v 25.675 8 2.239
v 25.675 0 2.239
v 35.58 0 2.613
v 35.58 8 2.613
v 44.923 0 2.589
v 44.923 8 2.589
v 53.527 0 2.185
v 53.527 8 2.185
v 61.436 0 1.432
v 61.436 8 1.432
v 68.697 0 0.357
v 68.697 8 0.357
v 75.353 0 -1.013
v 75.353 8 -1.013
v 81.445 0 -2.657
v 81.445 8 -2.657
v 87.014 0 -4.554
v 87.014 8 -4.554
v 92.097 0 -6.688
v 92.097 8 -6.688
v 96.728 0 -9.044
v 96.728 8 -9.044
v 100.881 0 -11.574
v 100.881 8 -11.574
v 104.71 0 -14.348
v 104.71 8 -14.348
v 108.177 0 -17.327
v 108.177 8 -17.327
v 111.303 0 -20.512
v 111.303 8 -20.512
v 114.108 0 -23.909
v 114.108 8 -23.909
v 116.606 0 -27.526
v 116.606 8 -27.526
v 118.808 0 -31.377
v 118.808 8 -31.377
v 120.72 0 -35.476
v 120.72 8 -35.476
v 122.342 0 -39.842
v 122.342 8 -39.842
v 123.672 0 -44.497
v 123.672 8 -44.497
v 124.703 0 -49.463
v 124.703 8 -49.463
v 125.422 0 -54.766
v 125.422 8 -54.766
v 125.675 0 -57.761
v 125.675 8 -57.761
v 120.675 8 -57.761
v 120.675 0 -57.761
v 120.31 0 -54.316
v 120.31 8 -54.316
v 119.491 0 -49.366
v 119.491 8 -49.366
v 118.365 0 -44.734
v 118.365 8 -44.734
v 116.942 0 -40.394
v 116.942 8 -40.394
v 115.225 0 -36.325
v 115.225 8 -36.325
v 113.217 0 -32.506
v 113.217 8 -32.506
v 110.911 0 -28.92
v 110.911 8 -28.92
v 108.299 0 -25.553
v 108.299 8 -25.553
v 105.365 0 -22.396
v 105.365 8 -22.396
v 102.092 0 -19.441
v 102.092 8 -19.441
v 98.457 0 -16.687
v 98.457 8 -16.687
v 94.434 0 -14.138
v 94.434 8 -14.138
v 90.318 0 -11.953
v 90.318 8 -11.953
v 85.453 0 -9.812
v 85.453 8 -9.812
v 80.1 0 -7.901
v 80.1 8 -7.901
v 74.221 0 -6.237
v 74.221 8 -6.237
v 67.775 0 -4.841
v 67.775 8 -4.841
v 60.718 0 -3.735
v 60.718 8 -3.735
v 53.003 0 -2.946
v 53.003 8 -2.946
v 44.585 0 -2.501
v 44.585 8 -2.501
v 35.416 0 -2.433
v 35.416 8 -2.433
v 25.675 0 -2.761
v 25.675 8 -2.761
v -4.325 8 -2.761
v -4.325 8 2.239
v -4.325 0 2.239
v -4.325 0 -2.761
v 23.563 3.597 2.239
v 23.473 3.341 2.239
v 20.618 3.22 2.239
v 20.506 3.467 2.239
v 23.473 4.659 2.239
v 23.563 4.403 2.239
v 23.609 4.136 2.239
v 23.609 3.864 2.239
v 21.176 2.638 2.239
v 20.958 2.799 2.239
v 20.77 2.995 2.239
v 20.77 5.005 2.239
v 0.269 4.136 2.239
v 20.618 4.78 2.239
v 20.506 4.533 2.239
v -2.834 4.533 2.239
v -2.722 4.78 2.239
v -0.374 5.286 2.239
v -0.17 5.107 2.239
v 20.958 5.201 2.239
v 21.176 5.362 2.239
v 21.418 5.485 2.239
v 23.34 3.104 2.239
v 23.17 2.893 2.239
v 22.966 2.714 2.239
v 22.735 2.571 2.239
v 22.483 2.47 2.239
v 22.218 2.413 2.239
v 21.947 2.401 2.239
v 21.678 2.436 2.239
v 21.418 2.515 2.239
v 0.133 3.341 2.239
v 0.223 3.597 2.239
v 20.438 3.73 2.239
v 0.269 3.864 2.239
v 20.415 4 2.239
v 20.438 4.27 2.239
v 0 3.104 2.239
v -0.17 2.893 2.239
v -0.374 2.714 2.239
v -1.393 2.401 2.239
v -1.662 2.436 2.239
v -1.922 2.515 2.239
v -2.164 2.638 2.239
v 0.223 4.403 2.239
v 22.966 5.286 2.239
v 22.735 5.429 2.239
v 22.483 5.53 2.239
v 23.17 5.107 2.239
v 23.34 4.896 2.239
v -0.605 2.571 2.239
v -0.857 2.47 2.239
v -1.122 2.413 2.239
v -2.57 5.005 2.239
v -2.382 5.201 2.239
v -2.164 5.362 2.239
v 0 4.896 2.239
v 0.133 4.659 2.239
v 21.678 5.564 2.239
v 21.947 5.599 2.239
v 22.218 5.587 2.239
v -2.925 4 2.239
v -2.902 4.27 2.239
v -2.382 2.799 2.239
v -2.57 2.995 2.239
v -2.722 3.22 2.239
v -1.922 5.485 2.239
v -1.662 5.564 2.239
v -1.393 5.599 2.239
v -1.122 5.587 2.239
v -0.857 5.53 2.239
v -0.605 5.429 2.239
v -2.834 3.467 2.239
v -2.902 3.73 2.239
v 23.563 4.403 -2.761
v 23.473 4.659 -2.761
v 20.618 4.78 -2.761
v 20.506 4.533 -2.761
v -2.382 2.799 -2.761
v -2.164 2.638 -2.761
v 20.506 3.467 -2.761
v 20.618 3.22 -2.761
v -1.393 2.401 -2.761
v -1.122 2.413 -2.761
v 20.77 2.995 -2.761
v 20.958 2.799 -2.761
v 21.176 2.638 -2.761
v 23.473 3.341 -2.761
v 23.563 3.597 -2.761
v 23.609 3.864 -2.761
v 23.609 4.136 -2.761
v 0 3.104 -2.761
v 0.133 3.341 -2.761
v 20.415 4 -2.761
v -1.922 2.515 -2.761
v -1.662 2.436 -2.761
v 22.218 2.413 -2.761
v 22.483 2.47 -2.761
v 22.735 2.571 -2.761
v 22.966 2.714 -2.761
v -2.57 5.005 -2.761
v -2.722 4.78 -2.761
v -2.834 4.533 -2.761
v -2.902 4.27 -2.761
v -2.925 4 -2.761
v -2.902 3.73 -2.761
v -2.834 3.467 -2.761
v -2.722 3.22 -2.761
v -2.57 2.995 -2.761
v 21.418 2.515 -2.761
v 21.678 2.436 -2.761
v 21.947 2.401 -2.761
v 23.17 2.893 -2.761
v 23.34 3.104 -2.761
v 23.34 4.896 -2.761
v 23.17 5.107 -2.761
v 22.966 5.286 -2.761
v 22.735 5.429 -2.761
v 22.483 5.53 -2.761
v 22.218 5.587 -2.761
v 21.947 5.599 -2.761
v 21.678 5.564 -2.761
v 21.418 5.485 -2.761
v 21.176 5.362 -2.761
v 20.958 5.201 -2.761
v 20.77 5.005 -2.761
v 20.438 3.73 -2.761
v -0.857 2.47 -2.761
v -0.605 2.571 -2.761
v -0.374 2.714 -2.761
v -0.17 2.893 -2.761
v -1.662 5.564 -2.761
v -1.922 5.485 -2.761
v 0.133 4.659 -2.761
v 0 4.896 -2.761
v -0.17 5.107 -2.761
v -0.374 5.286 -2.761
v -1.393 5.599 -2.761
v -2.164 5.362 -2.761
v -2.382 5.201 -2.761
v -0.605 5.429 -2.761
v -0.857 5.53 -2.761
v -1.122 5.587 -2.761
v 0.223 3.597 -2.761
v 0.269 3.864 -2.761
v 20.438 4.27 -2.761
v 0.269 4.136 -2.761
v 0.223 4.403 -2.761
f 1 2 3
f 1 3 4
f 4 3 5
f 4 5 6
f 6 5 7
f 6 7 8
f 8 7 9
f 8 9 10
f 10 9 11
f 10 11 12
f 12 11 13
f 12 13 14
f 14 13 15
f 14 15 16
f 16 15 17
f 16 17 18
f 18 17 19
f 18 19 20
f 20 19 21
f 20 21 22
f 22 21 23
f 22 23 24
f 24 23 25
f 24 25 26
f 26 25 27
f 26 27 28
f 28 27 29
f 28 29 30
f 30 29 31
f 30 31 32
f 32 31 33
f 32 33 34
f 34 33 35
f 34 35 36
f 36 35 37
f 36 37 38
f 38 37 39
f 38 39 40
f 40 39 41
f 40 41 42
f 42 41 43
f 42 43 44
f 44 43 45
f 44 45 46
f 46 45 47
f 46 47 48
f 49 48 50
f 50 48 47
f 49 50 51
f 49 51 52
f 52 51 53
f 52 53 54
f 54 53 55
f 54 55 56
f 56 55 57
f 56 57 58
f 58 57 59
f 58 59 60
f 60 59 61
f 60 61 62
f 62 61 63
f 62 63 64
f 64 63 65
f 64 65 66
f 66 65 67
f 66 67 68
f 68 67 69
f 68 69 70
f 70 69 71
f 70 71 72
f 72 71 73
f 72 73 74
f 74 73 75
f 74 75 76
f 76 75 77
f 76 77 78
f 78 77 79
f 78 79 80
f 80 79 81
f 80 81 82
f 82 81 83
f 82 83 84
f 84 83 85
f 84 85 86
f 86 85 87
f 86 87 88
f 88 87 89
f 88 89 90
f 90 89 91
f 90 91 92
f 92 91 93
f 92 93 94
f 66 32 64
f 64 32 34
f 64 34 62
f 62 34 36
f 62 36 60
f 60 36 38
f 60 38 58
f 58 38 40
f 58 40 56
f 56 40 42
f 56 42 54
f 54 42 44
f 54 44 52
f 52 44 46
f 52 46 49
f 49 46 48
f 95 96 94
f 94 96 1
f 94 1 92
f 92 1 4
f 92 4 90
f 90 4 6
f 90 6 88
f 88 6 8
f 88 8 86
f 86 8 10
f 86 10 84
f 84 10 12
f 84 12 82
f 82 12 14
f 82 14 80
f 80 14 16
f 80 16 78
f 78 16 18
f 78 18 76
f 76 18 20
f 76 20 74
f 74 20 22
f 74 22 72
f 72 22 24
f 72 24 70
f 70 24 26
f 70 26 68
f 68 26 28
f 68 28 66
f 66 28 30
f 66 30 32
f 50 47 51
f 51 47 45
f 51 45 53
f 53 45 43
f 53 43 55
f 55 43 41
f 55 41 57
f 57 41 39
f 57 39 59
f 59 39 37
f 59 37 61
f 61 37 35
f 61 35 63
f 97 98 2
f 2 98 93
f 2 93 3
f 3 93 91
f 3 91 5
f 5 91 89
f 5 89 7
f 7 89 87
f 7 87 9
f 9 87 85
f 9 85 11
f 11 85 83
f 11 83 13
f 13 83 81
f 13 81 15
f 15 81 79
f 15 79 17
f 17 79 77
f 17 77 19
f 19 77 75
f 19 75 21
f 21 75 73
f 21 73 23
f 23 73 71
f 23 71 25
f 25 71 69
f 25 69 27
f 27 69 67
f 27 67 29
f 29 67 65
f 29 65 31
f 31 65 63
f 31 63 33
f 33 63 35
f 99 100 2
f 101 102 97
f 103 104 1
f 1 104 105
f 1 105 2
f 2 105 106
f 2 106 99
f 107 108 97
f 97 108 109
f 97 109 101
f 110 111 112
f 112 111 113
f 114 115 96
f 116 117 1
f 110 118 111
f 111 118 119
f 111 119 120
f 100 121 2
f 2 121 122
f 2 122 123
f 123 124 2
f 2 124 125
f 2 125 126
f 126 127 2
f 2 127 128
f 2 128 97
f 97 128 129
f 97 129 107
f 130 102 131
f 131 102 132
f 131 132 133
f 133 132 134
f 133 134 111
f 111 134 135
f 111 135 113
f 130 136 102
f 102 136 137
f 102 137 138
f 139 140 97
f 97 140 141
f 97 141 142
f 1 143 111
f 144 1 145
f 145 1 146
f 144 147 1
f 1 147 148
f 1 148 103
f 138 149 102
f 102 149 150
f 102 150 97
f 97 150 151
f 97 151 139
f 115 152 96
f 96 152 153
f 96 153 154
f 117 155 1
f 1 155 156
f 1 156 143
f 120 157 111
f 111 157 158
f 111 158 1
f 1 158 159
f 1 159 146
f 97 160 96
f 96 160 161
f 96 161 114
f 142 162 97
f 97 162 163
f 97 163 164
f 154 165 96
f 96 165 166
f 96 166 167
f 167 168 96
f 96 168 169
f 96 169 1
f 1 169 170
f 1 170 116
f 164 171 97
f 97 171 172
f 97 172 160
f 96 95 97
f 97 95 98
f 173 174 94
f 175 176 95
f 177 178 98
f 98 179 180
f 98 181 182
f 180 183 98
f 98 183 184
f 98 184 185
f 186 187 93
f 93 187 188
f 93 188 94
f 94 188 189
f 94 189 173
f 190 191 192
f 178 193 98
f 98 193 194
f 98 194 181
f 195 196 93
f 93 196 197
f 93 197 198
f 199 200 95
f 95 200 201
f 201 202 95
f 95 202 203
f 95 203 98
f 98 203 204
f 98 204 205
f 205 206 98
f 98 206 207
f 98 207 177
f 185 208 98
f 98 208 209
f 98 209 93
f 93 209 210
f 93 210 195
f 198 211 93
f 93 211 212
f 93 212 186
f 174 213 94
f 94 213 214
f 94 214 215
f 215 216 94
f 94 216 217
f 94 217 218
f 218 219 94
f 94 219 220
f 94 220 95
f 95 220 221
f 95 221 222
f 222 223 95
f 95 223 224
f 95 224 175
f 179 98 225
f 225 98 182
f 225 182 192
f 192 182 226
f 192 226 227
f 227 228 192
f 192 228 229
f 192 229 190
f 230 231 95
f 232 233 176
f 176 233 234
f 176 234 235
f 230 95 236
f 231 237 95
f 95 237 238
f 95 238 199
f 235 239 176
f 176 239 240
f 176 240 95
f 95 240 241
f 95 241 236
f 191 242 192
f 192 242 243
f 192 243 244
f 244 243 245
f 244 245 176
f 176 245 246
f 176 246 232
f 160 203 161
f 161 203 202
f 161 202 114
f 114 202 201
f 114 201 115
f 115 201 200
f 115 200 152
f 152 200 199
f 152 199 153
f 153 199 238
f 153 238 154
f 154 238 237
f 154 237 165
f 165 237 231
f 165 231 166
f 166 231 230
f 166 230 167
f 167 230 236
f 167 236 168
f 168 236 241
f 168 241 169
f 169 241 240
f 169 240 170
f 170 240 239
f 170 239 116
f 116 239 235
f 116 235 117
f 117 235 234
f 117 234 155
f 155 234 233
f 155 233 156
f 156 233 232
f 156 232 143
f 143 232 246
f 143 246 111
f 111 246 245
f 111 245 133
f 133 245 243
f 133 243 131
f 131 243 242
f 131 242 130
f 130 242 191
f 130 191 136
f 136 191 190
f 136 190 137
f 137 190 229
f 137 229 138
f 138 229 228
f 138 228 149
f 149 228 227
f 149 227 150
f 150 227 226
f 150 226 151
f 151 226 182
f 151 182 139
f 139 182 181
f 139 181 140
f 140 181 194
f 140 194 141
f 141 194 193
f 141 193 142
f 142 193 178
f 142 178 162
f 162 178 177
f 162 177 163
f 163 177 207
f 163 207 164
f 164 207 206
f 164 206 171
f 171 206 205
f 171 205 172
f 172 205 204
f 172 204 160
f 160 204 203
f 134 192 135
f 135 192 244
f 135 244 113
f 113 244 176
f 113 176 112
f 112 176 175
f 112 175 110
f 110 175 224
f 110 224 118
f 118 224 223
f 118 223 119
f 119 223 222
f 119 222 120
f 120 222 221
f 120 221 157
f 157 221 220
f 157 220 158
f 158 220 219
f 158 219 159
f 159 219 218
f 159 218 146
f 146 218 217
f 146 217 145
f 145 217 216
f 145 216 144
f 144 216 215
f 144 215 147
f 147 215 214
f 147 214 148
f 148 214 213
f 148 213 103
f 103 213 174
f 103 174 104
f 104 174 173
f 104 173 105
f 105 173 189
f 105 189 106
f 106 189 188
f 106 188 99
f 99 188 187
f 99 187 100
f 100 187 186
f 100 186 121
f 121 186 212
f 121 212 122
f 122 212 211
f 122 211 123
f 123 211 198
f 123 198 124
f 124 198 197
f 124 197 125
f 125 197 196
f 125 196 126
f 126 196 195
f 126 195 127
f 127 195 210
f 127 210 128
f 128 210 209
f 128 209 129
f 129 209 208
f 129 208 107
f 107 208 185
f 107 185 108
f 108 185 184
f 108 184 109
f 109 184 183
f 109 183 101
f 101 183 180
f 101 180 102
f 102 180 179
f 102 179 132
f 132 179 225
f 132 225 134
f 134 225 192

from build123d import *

# Parameters (mm, degrees)
EXTRUDE_1_DEPTH     = 8
SKETCH_2_R          = 1.6
CUT_EXTRUDE_1_DEPTH = 10


with BuildPart() as part:
    # Эскиз1 → Бобышка-Вытянуть1 (new body)
    with BuildSketch(Plane(origin=(0, 0, 0), x_dir=(1, 0, 0), z_dir=(0, 1, 0))):
        with BuildLine():
            Line((120.67483279, 57.76097026), (125.67483279, 57.76097026))
            add(Edge.make_bspline(
                [(25.67483279, -2.23902974), (121.28759337, -7.643443061), (125.67483279, 57.76097026)],
                knots=[0, 0, 0, 1, 1, 1], degree=2))
            Line((25.67483279, -2.23902974), (-4.32516721, -2.23902974))
            Line((-4.32516721, -2.23902974), (-4.32516721, 2.76097026))
            Line((-4.32516721, 2.76097026), (25.67483279, 2.76097026))
            add(Edge.make_bspline(
                [(25.67483279, 2.76097026), (115.69323106, -1.985762605), (120.67483279, 57.76097026)],
                knots=[0, 0, 0, 1, 1, 1], degree=2))
        make_face()
    extrude(amount=EXTRUDE_1_DEPTH)

    # Эскиз2 → Вырез-Вытянуть1 (cut)
    with BuildSketch(Plane(origin=(0, 0, -2.76097026), x_dir=(-1, 0, 0), z_dir=(0, 0, -1))):
        with Locations((-22.01483279, 4)):
            Circle(SKETCH_2_R)
        with Locations((1.32516721, 4)):
            Circle(SKETCH_2_R)
    extrude(amount=-CUT_EXTRUDE_1_DEPTH, mode=Mode.SUBTRACT)


solid = part.part
